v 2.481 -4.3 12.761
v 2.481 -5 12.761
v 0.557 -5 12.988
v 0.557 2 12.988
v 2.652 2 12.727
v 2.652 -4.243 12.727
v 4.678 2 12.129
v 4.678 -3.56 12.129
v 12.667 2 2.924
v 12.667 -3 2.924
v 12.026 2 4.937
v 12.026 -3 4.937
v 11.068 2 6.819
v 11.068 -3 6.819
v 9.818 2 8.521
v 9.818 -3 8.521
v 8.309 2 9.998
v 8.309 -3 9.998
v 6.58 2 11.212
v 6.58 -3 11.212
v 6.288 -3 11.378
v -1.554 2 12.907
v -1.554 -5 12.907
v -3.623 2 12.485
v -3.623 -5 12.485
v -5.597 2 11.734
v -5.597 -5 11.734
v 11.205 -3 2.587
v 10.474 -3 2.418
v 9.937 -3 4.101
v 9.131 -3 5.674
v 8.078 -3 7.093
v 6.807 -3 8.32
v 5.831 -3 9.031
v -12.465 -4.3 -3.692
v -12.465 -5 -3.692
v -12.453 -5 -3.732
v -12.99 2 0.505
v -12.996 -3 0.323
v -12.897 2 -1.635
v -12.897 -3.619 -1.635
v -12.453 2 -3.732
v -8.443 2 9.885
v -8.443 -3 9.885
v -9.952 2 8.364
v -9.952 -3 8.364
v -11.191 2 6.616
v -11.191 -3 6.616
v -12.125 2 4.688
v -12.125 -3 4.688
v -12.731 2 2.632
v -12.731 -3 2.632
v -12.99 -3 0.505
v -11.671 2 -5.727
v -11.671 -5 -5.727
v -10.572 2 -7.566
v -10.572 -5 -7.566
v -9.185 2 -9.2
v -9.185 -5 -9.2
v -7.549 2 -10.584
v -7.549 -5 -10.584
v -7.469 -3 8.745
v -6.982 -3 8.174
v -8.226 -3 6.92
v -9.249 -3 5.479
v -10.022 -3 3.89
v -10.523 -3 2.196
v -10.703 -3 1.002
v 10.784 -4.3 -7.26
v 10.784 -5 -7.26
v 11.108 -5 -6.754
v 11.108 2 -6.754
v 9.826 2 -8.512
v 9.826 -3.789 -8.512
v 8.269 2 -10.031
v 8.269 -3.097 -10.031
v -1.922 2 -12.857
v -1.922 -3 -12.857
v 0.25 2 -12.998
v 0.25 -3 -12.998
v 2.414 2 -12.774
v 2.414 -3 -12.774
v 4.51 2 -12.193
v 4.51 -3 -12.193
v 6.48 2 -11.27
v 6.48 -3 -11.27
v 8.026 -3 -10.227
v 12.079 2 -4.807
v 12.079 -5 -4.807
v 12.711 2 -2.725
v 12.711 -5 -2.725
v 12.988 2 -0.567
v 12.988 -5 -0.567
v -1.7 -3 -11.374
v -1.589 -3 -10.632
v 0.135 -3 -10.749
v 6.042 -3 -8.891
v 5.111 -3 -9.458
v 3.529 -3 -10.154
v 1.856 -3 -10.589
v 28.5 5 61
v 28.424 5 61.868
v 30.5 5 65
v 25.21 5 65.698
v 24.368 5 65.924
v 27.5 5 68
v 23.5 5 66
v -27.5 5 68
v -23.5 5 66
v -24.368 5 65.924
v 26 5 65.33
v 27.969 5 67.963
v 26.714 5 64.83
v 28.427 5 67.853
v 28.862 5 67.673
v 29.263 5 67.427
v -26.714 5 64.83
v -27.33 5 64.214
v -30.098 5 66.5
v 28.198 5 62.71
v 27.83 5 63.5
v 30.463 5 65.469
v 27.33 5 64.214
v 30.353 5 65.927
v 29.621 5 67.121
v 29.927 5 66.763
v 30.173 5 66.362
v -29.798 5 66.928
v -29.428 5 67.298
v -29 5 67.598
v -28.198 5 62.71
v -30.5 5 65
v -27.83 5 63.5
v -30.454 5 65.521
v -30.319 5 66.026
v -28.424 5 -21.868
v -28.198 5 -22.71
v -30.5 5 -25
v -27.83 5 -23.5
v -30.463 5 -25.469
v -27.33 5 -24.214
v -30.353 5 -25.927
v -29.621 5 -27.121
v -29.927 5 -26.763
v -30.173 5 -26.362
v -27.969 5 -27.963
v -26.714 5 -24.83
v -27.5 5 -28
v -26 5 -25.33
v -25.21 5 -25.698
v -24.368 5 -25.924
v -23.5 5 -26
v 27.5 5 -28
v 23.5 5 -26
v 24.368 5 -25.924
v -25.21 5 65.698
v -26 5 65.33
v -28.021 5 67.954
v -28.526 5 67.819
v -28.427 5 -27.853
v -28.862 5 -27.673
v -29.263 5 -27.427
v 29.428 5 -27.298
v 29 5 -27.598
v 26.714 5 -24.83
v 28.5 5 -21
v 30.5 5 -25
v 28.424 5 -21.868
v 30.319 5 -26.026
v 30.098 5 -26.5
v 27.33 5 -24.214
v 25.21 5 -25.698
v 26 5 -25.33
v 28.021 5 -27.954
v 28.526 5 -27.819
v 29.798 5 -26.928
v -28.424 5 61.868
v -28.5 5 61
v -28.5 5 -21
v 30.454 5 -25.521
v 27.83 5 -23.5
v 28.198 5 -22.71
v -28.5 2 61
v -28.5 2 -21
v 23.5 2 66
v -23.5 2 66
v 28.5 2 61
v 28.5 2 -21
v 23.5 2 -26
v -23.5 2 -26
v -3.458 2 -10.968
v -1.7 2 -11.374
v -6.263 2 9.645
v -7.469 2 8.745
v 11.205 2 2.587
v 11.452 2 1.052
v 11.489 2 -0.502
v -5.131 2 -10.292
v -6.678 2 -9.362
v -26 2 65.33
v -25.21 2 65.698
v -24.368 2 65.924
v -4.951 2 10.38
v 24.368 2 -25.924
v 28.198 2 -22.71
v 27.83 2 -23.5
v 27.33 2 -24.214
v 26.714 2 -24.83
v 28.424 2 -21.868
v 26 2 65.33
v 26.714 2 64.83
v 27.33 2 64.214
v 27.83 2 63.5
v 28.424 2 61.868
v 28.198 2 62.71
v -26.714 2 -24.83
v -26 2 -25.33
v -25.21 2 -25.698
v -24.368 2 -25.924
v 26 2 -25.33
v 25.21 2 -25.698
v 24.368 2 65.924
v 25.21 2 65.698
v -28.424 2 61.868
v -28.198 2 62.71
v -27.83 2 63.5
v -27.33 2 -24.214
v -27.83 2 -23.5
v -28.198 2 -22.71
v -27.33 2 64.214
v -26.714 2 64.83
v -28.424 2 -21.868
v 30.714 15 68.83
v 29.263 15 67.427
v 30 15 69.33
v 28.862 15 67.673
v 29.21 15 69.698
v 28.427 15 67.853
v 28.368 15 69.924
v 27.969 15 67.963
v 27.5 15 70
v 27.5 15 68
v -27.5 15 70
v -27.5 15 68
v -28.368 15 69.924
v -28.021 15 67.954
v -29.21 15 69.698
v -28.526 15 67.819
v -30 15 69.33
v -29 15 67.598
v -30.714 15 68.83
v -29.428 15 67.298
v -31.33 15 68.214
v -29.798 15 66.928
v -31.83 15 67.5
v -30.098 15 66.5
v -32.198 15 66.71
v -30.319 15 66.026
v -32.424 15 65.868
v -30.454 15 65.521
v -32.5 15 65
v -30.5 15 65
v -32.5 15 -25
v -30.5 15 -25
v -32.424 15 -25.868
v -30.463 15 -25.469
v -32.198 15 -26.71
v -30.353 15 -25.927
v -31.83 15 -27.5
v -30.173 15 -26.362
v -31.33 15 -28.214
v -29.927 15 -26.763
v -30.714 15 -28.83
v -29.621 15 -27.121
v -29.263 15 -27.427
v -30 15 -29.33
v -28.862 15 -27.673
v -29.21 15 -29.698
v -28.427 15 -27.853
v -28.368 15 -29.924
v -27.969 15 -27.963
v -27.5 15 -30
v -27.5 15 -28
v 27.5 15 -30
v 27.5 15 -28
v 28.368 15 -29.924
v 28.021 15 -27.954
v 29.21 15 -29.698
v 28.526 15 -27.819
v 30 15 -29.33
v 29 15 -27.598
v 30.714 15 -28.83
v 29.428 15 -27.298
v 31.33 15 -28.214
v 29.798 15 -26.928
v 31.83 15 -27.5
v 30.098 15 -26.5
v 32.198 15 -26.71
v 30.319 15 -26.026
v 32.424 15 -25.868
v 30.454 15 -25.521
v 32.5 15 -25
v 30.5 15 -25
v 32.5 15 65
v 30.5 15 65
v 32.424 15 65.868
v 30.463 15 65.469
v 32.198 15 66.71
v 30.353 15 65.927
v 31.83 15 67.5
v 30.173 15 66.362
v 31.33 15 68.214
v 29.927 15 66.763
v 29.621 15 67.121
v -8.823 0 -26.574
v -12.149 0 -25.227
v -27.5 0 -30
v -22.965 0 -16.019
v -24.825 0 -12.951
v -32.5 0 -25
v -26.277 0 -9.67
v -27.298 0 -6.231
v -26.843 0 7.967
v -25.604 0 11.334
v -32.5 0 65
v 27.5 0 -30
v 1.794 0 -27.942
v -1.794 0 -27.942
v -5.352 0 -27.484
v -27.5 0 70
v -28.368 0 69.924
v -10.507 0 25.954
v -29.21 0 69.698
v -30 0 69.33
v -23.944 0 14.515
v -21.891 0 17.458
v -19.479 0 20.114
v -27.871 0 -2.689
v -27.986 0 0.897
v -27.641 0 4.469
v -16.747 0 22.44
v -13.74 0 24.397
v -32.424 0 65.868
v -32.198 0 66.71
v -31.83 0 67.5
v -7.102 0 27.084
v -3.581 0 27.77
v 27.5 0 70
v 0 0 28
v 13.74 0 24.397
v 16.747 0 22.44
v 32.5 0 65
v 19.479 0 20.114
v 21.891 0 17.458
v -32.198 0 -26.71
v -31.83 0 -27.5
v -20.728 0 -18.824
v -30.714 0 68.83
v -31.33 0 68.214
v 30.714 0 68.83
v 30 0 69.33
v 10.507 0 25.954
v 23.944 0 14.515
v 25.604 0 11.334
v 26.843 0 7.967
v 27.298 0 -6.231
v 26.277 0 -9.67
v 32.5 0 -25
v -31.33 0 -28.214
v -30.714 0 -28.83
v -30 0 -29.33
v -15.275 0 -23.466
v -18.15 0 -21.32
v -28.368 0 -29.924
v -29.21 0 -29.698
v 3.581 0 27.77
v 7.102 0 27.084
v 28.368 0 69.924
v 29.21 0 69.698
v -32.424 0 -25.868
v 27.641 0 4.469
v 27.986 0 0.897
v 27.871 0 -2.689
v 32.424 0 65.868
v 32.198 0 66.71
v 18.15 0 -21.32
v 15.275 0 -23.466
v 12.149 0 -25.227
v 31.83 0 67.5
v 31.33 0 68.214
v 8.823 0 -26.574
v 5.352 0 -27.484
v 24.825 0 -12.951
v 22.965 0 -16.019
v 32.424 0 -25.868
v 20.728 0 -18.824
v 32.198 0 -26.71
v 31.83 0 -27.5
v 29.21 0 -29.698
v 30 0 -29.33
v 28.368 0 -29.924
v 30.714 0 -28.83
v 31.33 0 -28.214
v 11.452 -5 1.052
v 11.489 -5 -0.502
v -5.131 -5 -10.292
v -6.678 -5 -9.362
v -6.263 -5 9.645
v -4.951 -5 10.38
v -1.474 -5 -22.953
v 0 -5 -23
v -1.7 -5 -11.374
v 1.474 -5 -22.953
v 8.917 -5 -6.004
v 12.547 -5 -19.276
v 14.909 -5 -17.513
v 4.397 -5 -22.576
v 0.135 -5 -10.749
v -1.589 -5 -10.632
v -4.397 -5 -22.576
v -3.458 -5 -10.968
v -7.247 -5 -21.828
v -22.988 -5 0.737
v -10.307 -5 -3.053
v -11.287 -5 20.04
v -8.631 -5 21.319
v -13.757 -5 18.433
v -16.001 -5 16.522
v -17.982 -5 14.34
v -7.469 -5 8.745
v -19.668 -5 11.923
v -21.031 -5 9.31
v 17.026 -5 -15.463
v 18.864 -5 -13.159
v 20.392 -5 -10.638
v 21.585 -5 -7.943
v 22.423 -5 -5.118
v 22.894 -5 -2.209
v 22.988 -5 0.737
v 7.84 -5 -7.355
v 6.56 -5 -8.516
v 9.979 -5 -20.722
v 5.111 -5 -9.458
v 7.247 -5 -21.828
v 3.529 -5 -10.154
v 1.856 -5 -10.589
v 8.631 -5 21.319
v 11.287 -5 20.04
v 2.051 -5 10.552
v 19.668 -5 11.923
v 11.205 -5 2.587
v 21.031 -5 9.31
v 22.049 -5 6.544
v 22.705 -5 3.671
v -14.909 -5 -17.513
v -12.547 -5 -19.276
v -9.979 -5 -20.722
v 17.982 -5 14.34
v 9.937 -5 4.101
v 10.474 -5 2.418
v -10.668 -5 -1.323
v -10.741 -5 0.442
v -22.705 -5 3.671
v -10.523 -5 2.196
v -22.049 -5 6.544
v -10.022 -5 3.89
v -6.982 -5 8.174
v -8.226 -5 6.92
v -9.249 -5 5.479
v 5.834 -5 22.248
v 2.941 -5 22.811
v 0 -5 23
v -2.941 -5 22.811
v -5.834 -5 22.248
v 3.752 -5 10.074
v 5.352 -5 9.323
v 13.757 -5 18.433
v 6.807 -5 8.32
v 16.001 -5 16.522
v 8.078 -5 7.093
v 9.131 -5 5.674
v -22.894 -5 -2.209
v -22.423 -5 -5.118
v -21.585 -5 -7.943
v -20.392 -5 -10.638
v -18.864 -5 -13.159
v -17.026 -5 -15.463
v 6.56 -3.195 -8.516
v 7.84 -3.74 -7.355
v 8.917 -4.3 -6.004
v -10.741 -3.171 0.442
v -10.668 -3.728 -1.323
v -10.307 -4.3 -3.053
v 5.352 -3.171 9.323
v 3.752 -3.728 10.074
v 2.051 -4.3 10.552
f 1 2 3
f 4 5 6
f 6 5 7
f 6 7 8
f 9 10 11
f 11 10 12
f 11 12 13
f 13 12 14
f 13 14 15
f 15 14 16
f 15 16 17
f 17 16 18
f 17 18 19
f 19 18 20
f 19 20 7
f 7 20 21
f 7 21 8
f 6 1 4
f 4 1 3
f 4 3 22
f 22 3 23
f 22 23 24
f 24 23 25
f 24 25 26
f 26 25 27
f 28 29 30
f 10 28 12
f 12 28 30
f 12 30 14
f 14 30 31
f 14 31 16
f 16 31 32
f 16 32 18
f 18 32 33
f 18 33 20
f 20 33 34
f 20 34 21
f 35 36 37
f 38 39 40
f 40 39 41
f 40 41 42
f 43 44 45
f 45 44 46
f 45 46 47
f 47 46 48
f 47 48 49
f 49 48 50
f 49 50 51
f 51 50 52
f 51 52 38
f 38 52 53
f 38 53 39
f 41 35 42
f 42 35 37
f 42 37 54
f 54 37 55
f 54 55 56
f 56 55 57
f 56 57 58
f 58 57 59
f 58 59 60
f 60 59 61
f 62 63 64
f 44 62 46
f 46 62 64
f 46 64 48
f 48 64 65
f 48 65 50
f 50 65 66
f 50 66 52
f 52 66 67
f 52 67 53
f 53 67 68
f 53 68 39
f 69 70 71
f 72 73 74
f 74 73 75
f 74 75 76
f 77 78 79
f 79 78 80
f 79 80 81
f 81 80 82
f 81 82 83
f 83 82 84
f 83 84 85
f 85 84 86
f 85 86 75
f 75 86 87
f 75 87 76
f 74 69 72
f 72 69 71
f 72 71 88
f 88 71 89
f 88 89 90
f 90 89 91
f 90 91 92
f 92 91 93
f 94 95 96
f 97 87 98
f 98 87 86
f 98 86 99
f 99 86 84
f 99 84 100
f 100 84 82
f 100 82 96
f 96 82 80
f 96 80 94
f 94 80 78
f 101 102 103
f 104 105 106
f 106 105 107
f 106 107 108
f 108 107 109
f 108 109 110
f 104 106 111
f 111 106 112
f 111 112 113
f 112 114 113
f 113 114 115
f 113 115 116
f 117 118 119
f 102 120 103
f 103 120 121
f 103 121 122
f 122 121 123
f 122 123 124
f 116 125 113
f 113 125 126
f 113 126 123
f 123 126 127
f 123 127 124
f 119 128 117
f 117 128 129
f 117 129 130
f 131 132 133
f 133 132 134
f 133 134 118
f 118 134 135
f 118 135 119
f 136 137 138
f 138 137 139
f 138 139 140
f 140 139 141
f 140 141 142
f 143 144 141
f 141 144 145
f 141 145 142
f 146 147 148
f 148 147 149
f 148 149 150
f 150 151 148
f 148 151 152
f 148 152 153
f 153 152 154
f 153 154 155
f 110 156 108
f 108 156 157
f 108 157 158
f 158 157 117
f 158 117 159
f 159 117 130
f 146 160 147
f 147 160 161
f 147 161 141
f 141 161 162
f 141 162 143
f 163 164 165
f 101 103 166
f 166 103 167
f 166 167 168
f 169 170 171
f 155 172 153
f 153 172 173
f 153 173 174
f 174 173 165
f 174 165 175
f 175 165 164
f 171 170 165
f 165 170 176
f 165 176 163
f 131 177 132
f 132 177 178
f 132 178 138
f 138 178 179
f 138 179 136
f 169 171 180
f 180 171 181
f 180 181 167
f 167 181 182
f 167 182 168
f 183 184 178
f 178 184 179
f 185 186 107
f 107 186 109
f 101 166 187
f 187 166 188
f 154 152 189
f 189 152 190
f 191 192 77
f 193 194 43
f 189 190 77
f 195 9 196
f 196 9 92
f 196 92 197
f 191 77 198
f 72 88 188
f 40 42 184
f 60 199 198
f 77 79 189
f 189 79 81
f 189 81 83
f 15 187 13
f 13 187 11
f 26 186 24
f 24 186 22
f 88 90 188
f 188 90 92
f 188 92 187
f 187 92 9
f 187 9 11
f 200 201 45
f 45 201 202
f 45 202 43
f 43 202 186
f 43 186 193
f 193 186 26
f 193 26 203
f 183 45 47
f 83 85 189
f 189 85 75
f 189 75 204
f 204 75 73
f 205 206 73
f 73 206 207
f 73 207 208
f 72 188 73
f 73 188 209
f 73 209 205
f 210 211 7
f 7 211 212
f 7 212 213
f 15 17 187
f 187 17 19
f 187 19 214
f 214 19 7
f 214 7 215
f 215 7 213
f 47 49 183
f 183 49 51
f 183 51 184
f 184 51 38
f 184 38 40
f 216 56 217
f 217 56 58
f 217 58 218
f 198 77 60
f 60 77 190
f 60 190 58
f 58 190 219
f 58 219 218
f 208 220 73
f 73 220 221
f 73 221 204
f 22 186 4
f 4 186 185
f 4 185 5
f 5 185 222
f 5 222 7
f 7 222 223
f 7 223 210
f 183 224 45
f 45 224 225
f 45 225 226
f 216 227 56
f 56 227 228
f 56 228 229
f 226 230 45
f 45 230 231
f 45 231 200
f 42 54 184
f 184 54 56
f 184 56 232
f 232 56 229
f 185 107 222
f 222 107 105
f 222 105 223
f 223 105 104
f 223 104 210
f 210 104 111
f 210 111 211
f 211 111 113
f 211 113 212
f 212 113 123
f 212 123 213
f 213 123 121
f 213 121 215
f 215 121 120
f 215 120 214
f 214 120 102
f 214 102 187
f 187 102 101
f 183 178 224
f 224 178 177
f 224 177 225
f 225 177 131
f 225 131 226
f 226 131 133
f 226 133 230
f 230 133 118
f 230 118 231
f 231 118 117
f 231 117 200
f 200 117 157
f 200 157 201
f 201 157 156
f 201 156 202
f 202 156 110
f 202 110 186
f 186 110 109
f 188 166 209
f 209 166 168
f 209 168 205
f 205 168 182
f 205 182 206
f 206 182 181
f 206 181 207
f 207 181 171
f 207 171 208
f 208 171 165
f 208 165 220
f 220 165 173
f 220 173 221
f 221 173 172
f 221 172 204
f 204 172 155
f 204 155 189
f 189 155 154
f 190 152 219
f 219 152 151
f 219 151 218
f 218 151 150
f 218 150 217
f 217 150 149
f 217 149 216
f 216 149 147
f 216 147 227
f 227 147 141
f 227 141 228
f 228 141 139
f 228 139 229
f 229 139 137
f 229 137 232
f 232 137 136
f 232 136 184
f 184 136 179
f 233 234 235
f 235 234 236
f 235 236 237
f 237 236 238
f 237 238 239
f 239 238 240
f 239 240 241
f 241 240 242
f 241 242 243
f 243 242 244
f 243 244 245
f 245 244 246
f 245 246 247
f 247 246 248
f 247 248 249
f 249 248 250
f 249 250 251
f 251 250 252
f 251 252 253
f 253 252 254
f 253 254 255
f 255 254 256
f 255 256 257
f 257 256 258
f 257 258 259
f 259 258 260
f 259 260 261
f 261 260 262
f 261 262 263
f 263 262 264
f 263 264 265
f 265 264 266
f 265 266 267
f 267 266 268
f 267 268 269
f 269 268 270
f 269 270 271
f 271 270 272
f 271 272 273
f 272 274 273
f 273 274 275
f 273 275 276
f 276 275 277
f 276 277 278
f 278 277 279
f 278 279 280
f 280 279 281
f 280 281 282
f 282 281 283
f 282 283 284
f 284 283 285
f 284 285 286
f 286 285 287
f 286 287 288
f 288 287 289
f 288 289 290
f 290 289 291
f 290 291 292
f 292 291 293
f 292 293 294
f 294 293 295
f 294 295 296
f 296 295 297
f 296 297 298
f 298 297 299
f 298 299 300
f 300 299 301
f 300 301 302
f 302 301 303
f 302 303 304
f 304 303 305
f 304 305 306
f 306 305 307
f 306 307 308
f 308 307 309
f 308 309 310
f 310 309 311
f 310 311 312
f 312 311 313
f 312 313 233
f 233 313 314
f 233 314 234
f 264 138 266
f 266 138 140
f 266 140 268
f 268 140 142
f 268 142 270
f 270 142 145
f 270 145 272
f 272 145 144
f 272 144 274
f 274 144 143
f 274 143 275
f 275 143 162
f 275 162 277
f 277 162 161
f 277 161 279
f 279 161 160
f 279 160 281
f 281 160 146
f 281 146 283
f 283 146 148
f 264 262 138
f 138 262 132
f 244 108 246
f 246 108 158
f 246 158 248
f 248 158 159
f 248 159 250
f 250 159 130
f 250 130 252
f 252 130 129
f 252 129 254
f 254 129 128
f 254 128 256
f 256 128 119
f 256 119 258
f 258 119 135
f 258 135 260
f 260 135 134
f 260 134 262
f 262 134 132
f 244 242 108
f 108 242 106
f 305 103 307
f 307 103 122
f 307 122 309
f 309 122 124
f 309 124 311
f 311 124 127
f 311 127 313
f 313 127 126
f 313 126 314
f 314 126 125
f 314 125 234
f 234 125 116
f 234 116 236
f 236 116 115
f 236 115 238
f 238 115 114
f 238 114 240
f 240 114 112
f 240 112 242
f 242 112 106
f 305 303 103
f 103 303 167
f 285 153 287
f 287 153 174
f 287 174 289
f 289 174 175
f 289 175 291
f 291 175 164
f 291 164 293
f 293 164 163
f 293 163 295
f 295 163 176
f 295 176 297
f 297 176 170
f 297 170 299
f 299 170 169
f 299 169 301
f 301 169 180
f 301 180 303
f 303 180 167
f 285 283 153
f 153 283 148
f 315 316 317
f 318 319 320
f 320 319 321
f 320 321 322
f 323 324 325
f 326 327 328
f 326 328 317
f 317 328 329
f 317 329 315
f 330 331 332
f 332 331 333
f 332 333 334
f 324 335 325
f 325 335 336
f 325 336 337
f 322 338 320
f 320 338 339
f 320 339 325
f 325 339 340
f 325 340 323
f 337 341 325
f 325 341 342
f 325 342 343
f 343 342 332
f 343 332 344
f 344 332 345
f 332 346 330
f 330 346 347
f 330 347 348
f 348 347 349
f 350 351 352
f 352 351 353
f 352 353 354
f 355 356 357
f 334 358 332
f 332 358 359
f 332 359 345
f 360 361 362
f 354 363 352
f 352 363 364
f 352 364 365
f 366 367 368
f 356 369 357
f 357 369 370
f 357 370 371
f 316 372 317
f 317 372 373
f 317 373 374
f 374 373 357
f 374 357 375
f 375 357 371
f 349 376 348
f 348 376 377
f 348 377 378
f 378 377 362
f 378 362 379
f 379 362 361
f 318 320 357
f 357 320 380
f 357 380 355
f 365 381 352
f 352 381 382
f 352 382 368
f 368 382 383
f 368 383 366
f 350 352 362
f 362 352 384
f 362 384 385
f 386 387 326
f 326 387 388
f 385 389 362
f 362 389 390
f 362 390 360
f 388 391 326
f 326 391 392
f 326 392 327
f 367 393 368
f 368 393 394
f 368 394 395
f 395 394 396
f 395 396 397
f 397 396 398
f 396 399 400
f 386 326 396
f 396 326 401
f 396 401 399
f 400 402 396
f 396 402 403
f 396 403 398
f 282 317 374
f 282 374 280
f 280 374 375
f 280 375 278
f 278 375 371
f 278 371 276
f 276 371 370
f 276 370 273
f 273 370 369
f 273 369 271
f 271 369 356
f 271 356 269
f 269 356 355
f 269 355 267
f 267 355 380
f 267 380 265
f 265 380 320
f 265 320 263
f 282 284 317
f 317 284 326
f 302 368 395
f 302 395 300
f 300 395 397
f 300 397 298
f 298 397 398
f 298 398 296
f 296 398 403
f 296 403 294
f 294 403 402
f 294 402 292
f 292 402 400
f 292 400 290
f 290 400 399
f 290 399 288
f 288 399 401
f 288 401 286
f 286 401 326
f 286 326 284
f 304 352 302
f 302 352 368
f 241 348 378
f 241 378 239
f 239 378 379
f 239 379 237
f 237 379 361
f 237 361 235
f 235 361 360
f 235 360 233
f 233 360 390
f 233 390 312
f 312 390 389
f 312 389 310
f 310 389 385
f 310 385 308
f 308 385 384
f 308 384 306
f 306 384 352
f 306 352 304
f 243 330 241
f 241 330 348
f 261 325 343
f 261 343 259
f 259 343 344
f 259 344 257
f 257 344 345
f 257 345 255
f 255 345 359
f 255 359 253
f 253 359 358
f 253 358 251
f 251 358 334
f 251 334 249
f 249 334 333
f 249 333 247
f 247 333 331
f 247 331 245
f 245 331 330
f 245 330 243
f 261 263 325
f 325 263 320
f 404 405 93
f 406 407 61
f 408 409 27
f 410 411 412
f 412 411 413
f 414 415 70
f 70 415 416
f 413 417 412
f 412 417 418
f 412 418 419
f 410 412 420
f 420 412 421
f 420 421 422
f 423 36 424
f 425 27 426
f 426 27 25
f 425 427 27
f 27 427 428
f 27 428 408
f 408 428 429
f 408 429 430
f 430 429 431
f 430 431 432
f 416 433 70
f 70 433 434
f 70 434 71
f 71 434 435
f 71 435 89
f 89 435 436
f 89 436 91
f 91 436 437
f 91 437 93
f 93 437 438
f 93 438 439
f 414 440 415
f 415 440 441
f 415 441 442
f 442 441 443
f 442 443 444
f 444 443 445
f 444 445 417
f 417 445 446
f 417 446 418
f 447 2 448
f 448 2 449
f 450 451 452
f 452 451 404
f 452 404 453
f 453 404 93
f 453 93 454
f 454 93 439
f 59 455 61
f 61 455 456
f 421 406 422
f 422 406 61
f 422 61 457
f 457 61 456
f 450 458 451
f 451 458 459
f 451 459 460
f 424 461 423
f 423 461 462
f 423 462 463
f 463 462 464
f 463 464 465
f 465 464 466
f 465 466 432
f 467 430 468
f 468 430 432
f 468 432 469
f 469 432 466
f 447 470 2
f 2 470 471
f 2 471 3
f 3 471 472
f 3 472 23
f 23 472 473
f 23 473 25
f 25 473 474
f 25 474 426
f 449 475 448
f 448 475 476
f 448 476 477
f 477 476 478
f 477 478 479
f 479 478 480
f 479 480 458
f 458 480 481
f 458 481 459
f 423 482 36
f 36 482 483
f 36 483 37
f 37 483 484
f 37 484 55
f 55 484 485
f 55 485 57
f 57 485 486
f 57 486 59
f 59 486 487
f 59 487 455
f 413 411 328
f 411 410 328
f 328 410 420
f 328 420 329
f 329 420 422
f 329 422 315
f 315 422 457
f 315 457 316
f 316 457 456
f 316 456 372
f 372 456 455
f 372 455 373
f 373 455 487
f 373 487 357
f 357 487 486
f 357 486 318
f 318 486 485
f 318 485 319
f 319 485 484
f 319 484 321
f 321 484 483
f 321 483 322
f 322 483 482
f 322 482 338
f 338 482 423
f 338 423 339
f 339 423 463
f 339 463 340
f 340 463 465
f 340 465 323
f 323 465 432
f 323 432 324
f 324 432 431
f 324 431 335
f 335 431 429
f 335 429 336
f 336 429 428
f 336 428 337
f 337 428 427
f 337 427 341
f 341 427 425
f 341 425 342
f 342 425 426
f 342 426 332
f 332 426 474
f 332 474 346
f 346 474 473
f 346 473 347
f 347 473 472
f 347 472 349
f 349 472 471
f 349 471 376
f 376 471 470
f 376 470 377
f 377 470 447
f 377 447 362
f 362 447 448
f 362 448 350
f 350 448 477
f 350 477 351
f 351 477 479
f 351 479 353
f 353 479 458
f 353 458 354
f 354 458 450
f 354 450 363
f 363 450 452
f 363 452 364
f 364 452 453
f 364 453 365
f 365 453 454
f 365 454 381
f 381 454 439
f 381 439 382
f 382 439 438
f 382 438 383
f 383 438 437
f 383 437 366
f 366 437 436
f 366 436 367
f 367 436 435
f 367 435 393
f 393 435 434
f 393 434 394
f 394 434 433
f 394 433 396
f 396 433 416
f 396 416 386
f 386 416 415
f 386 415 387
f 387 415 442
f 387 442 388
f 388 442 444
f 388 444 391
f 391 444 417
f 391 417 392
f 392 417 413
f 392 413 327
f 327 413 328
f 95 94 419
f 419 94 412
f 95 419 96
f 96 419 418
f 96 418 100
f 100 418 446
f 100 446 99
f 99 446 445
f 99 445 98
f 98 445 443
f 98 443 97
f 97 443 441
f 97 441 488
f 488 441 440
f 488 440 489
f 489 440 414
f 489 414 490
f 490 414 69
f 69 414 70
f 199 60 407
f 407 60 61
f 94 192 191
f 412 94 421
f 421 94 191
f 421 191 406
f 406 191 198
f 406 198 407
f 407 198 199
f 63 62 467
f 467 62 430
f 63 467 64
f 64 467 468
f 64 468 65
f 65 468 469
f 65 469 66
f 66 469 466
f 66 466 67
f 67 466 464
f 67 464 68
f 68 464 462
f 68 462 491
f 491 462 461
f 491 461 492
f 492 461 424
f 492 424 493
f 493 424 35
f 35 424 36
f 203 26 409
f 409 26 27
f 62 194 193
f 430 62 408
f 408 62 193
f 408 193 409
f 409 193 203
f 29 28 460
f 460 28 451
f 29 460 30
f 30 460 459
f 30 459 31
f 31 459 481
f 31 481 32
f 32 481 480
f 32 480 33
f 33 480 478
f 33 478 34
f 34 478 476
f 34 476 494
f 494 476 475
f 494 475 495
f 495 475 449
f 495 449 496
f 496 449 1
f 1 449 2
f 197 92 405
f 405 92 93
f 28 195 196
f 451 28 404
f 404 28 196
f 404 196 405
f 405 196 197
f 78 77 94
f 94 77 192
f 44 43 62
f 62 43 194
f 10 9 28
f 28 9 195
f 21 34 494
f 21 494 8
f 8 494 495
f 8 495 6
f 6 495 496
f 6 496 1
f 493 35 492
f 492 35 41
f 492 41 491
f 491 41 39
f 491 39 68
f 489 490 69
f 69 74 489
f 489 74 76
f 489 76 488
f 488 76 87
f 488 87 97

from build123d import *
from OCP.BRepFilletAPI import BRepFilletAPI_MakeChamfer

# Parameters (mm, degrees)
SKETCH1_W           = 65
SKETCH1_H           = 100
BOSS_EXTRUDE1_DEPTH = 2
SKETCH2_W           = 65
SKETCH2_H           = 100
SKETCH2_W_2         = 57
SKETCH2_H_2         = 92
BOSS_EXTRUDE2_DEPTH = 3
FILLET1_R           = 5
BOSS_EXTRUDE3_DEPTH = 10
SKETCH6_R           = 18
BOSS_EXTRUDE4_DEPTH = 5
CHAMFER1_SIZE       = 10
SKETCH7_R           = 13
CUT_EXTRUDE1_DEPTH  = 80.726093596
BOSS_EXTRUDE6_DEPTH = 2
BOSS_EXTRUDE7_DEPTH = 7
CHAMFER2_SIZE       = 1.3
CHAMFER2_SIZE2      = 4.000988598


with BuildPart() as part:
    # Sketch1 → Boss-Extrude1 (new body)
    with BuildSketch(Plane(origin=(0, 0, 0), x_dir=(1, 0, 0), z_dir=(0, 1, 0))):
        with Locations((0, -20)):
            Rectangle(SKETCH1_W, SKETCH1_H)
    extrude(amount=BOSS_EXTRUDE1_DEPTH)

    # Sketch2 → Boss-Extrude2 (add)
    with BuildSketch(Plane(origin=(0, 2, 0), x_dir=(1, 0, 0), z_dir=(0, 1, 0))):
        with Locations((0, -20)):
            Rectangle(SKETCH2_W, SKETCH2_H)
        with Locations((0, -20)):
            Rectangle(SKETCH2_W_2, SKETCH2_H_2, mode=Mode.SUBTRACT)
    extrude(amount=BOSS_EXTRUDE2_DEPTH)

    # Fillet1
    fillet1_edges = [part.edges().sort_by_distance(p)[0] for p in [
        (-28.5, 3.5, 66),
        (28.5, 3.5, 66),
        (28.5, 3.5, -26),
        (-28.5, 3.5, -26),
        (-32.5, 2.5, -30),
        (32.5, 2.5, -30),
        (32.5, 2.5, 70),
        (-32.5, 2.5, 70),
    ]]
    fillet(fillet1_edges, radius=FILLET1_R)

    # Sketch4 → Boss-Extrude3 (add)
    with BuildSketch(Plane(origin=(0, 5, 0), x_dir=(1, 0, 0), z_dir=(0, 1, 0))):
        with BuildLine():
            Line((-32.5, 25), (-32.5, -65))
            ThreePointArc((-32.5, -65), (-31.035533906, -68.535533906), (-27.5, -70))
            Line((-27.5, -70), (27.5, -70))
            ThreePointArc((27.5, -70), (31.035533906, -68.535533906), (32.5, -65))
            Line((32.5, -65), (32.5, 25))
            ThreePointArc((32.5, 25), (31.035533906, 28.535533906), (27.5, 30))
            Line((27.5, 30), (-27.5, 30))
            ThreePointArc((-27.5, 30), (-31.035533906, 28.535533906), (-32.5, 25))
        make_face()
        with BuildLine():
            Line((-30.5, 25), (-30.5, -65))
            ThreePointArc((-30.5, -65), (-29.621320344, -67.121320344), (-27.5, -68))
            Line((-27.5, -68), (27.5, -68))
            ThreePointArc((27.5, -68), (29.621320344, -67.121320344), (30.5, -65))
            Line((30.5, -65), (30.5, 25))
            ThreePointArc((30.5, 25), (29.621320344, 27.121320344), (27.5, 28))
            Line((27.5, 28), (-27.5, 28))
            ThreePointArc((-27.5, 28), (-29.621320344, 27.121320344), (-30.5, 25))
        make_face(mode=Mode.SUBTRACT)
    extrude(amount=BOSS_EXTRUDE3_DEPTH)

    # Sketch6 → Boss-Extrude4 (add)
    with BuildSketch(Plane(origin=(0, -5, 0), x_dir=(-1, 0, 0), z_dir=(0, -1, 0))):
        with Locations(Location((0, 0, 0), (0, 0, 90))):
            Circle(SKETCH6_R)
    extrude(amount=-BOSS_EXTRUDE4_DEPTH)

    # Chamfer1
    # the kernel refuses this chamfer: 10 mm, written as the material it adds along each edge
    with BuildSketch(Plane(origin=(0, 0, 0), x_dir=(0, 0, -1), z_dir=(-1, 0, 0))) as chamfer1_piece_1_section:
        Polygon((18 + CHAMFER1_SIZE, 0), (18, CHAMFER1_SIZE), (18, 0), align=None)
    chamfer1_piece_1 = revolve(axis=Axis((0, 0, 0), (0, -1, 0)), mode=Mode.PRIVATE)
    chamfer1_piece_1 = split(chamfer1_piece_1, bisect_by=Plane(origin=(0, -5, 25.515578953), z_dir=(0, 1, 0)), keep=Keep.TOP, mode=Mode.PRIVATE)
    add(chamfer1_piece_1)

    # Sketch7 → Cut-Extrude1 (cut, through all)
    with BuildSketch(Plane.XZ.offset(5)):
        with Locations(Location((0, 0, 0), (0, 0, 270))):
            Circle(SKETCH7_R)
    extrude(amount=-CUT_EXTRUDE1_DEPTH, mode=Mode.SUBTRACT)

    # Sketch8 → Boss-Extrude6 (add)
    with BuildSketch(Plane(origin=(0, -5, 0), x_dir=(-1, 0, 0), z_dir=(0, -1, 0))):
        with BuildLine():
            ThreePointArc((-9.53952181, 6.422423502), (-4.636164201, 10.524066776), (1.699808228, 11.373682429))
            Line((1.699808228, 11.373682429), (1.921522345, 12.857206224))
            ThreePointArc((1.921522345, 12.857206224), (-5.240881271, 11.896771138), (-10.783807263, 7.260130916))
            Line((-10.783807263, 7.260130916), (-9.53952181, 6.422423502))
        make_face()
        with BuildLine():
            Line((1.921522345, 12.857206224), (1.699808228, 11.373682429))
            ThreePointArc((1.699808228, 11.373682429), (4.307975824, 10.662614328), (6.678083991, 9.362328461))
            Line((6.678083991, 9.362328461), (7.549138424, 10.583501739))
            ThreePointArc((7.549138424, 10.583501739), (4.869885714, 12.053390109), (1.921522345, 12.857206224))
        make_face()
        with BuildLine():
            Line((12.464656553, 3.692199481), (11.026426951, 3.266176464))
            ThreePointArc((11.026426951, 3.266176464), (11.380990948, 1.650165153), (11.5, 0))
            ThreePointArc((11.5, 0), (10.443646499, -4.814586982), (7.468652556, -8.744668604))
            Line((7.468652556, -8.744668604), (8.442824628, -9.885277553))
            ThreePointArc((8.442824628, -9.885277553), (11.80586126, -5.442576588), (13, 0))
            ThreePointArc((13, 0), (12.865468029, 1.865404086), (12.464656553, 3.692199481))
        make_face()
        with BuildLine():
            ThreePointArc((7.468652556, -8.744668604), (6.263348903, -9.644711531), (4.950877613, -10.37973077))
            Line((4.950877613, -10.37973077), (5.596644259, -11.733608697))
            ThreePointArc((5.596644259, -11.733608697), (7.080307455, -10.902717383), (8.442824628, -9.885277553))
            Line((8.442824628, -9.885277553), (7.468652556, -8.744668604))
        make_face()
        with BuildLine():
            ThreePointArc((-8.917379083, 6.003569796), (-4.333805666, 9.837714595), (1.58895117, 10.631920531))
            Line((1.58895117, 10.631920531), (1.699808228, 11.373682429))
            ThreePointArc((1.699808228, 11.373682429), (-4.636164201, 10.524066776), (-9.53952181, 6.422423502))
            Line((-9.53952181, 6.422423502), (-8.917379083, 6.003569796))
        make_face()
        with BuildLine():
            Line((11.026426951, 3.266176464), (10.30731215, 3.053164956))
            ThreePointArc((10.30731215, 3.053164956), (10.638752408, 1.542545686), (10.75, 0))
            ThreePointArc((10.75, 0), (9.762539119, -4.500592179), (6.98156652, -8.17436413))
            Line((6.98156652, -8.17436413), (7.468652556, -8.744668604))
            ThreePointArc((7.468652556, -8.744668604), (10.443646499, -4.814586982), (11.5, 0))
            ThreePointArc((11.5, 0), (11.380990948, 1.650165153), (11.026426951, 3.266176464))
        make_face()
        with BuildLine():
            Line((-2.48051694, -12.761153385), (-2.194303447, -11.28871261))
            ThreePointArc((-2.194303447, -11.28871261), (-7.98857126, -8.272407704), (-11.205255745, -2.586937125))
            Line((-11.205255745, -2.586937125), (-12.666810842, -2.924363706))
            ThreePointArc((-12.666810842, -2.924363706), (-9.030558816, -9.351417404), (-2.48051694, -12.761153385))
        make_face()
        with BuildLine():
            Line((-2.194303447, -11.28871261), (-2.0511967, -10.552492222))
            ThreePointArc((-2.0511967, -10.552492222), (-7.467577482, -7.732902854), (-10.474478196, -2.418223834))
            Line((-10.474478196, -2.418223834), (-11.205255745, -2.586937125))
            ThreePointArc((-11.205255745, -2.586937125), (-7.98857126, -8.272407704), (-2.194303447, -11.28871261))
        make_face()
        with BuildLine():
            ThreePointArc((-11.205255745, -2.586937125), (-11.451756667, -1.052268615), (-11.489054548, 0.501622955))
            Line((-11.489054548, 0.501622955), (-12.987626881, 0.567052036))
            ThreePointArc((-12.987626881, 0.567052036), (-12.945464058, -1.189521043), (-12.666810842, -2.924363706))
            Line((-12.666810842, -2.924363706), (-11.205255745, -2.586937125))
        make_face()
    extrude(amount=-BOSS_EXTRUDE6_DEPTH)

    # Sketch8<5> → Boss-Extrude7 (add)
    with BuildSketch(Plane(origin=(0, -5, 0), x_dir=(-1, 0, 0), z_dir=(0, -1, 0))):
        with BuildLine():
            Line((1.921522345, 12.857206224), (1.699808228, 11.373682429))
            ThreePointArc((1.699808228, 11.373682429), (4.307975824, 10.662614328), (6.678083991, 9.362328461))
            Line((6.678083991, 9.362328461), (7.549138424, 10.583501739))
            ThreePointArc((7.549138424, 10.583501739), (4.869885714, 12.053390109), (1.921522345, 12.857206224))
        make_face()
        with BuildLine():
            ThreePointArc((7.468652556, -8.744668604), (6.263348903, -9.644711531), (4.950877613, -10.37973077))
            Line((4.950877613, -10.37973077), (5.596644259, -11.733608697))
            ThreePointArc((5.596644259, -11.733608697), (7.080307455, -10.902717383), (8.442824628, -9.885277553))
            Line((8.442824628, -9.885277553), (7.468652556, -8.744668604))
        make_face()
        with BuildLine():
            ThreePointArc((-11.205255745, -2.586937125), (-11.451756667, -1.052268615), (-11.489054548, 0.501622955))
            Line((-11.489054548, 0.501622955), (-12.987626881, 0.567052036))
            ThreePointArc((-12.987626881, 0.567052036), (-12.945464058, -1.189521043), (-12.666810842, -2.924363706))
            Line((-12.666810842, -2.924363706), (-11.205255745, -2.586937125))
        make_face()
    extrude(amount=-BOSS_EXTRUDE7_DEPTH)

    # Chamfer2: one chamfer whose edges measure the first distance from different faces: ONE call of the kernel's chamfer builder (chamfer() names one face for all edges)
    chamfer2_edges_1 = [part.edges().sort_by_distance(p)[0] for p in [
        (9.850593173, -3, -6.631850356),
    ]]
    chamfer2_side_1 = [part.faces().sort_by_distance(p)[0] for p in [
        (9.850593173, -4, -6.631850356),
    ]]
    chamfer2_edges_2 = [part.edges().sort_by_distance(p)[0] for p in [
        (-11.385984352, -3, -3.372682218),
    ]]
    chamfer2_side_2 = [part.faces().sort_by_distance(p)[0] for p in [
        (-11.385984352, -4, -3.372682218),
    ]]
    chamfer2_edges_3 = [part.edges().sort_by_distance(p)[0] for p in [
        (2.26585682, -3, 11.656822803),
    ]]
    chamfer2_side_3 = [part.faces().sort_by_distance(p)[0] for p in [
        (2.26585682, -4, 11.656822803),
    ]]
    chamfer2 = BRepFilletAPI_MakeChamfer(part.part.solid().wrapped)
    for e in chamfer2_edges_1:
        chamfer2.Add(CHAMFER2_SIZE, CHAMFER2_SIZE2, e.wrapped, chamfer2_side_1[0].wrapped)  # the first distance lies on this face
    for e in chamfer2_edges_2:
        chamfer2.Add(CHAMFER2_SIZE, CHAMFER2_SIZE2, e.wrapped, chamfer2_side_2[0].wrapped)  # the first distance lies on this face
    for e in chamfer2_edges_3:
        chamfer2.Add(CHAMFER2_SIZE, CHAMFER2_SIZE2, e.wrapped, chamfer2_side_3[0].wrapped)  # the first distance lies on this face
    add(Compound.cast(chamfer2.Shape()), mode=Mode.REPLACE)


solid = part.part
